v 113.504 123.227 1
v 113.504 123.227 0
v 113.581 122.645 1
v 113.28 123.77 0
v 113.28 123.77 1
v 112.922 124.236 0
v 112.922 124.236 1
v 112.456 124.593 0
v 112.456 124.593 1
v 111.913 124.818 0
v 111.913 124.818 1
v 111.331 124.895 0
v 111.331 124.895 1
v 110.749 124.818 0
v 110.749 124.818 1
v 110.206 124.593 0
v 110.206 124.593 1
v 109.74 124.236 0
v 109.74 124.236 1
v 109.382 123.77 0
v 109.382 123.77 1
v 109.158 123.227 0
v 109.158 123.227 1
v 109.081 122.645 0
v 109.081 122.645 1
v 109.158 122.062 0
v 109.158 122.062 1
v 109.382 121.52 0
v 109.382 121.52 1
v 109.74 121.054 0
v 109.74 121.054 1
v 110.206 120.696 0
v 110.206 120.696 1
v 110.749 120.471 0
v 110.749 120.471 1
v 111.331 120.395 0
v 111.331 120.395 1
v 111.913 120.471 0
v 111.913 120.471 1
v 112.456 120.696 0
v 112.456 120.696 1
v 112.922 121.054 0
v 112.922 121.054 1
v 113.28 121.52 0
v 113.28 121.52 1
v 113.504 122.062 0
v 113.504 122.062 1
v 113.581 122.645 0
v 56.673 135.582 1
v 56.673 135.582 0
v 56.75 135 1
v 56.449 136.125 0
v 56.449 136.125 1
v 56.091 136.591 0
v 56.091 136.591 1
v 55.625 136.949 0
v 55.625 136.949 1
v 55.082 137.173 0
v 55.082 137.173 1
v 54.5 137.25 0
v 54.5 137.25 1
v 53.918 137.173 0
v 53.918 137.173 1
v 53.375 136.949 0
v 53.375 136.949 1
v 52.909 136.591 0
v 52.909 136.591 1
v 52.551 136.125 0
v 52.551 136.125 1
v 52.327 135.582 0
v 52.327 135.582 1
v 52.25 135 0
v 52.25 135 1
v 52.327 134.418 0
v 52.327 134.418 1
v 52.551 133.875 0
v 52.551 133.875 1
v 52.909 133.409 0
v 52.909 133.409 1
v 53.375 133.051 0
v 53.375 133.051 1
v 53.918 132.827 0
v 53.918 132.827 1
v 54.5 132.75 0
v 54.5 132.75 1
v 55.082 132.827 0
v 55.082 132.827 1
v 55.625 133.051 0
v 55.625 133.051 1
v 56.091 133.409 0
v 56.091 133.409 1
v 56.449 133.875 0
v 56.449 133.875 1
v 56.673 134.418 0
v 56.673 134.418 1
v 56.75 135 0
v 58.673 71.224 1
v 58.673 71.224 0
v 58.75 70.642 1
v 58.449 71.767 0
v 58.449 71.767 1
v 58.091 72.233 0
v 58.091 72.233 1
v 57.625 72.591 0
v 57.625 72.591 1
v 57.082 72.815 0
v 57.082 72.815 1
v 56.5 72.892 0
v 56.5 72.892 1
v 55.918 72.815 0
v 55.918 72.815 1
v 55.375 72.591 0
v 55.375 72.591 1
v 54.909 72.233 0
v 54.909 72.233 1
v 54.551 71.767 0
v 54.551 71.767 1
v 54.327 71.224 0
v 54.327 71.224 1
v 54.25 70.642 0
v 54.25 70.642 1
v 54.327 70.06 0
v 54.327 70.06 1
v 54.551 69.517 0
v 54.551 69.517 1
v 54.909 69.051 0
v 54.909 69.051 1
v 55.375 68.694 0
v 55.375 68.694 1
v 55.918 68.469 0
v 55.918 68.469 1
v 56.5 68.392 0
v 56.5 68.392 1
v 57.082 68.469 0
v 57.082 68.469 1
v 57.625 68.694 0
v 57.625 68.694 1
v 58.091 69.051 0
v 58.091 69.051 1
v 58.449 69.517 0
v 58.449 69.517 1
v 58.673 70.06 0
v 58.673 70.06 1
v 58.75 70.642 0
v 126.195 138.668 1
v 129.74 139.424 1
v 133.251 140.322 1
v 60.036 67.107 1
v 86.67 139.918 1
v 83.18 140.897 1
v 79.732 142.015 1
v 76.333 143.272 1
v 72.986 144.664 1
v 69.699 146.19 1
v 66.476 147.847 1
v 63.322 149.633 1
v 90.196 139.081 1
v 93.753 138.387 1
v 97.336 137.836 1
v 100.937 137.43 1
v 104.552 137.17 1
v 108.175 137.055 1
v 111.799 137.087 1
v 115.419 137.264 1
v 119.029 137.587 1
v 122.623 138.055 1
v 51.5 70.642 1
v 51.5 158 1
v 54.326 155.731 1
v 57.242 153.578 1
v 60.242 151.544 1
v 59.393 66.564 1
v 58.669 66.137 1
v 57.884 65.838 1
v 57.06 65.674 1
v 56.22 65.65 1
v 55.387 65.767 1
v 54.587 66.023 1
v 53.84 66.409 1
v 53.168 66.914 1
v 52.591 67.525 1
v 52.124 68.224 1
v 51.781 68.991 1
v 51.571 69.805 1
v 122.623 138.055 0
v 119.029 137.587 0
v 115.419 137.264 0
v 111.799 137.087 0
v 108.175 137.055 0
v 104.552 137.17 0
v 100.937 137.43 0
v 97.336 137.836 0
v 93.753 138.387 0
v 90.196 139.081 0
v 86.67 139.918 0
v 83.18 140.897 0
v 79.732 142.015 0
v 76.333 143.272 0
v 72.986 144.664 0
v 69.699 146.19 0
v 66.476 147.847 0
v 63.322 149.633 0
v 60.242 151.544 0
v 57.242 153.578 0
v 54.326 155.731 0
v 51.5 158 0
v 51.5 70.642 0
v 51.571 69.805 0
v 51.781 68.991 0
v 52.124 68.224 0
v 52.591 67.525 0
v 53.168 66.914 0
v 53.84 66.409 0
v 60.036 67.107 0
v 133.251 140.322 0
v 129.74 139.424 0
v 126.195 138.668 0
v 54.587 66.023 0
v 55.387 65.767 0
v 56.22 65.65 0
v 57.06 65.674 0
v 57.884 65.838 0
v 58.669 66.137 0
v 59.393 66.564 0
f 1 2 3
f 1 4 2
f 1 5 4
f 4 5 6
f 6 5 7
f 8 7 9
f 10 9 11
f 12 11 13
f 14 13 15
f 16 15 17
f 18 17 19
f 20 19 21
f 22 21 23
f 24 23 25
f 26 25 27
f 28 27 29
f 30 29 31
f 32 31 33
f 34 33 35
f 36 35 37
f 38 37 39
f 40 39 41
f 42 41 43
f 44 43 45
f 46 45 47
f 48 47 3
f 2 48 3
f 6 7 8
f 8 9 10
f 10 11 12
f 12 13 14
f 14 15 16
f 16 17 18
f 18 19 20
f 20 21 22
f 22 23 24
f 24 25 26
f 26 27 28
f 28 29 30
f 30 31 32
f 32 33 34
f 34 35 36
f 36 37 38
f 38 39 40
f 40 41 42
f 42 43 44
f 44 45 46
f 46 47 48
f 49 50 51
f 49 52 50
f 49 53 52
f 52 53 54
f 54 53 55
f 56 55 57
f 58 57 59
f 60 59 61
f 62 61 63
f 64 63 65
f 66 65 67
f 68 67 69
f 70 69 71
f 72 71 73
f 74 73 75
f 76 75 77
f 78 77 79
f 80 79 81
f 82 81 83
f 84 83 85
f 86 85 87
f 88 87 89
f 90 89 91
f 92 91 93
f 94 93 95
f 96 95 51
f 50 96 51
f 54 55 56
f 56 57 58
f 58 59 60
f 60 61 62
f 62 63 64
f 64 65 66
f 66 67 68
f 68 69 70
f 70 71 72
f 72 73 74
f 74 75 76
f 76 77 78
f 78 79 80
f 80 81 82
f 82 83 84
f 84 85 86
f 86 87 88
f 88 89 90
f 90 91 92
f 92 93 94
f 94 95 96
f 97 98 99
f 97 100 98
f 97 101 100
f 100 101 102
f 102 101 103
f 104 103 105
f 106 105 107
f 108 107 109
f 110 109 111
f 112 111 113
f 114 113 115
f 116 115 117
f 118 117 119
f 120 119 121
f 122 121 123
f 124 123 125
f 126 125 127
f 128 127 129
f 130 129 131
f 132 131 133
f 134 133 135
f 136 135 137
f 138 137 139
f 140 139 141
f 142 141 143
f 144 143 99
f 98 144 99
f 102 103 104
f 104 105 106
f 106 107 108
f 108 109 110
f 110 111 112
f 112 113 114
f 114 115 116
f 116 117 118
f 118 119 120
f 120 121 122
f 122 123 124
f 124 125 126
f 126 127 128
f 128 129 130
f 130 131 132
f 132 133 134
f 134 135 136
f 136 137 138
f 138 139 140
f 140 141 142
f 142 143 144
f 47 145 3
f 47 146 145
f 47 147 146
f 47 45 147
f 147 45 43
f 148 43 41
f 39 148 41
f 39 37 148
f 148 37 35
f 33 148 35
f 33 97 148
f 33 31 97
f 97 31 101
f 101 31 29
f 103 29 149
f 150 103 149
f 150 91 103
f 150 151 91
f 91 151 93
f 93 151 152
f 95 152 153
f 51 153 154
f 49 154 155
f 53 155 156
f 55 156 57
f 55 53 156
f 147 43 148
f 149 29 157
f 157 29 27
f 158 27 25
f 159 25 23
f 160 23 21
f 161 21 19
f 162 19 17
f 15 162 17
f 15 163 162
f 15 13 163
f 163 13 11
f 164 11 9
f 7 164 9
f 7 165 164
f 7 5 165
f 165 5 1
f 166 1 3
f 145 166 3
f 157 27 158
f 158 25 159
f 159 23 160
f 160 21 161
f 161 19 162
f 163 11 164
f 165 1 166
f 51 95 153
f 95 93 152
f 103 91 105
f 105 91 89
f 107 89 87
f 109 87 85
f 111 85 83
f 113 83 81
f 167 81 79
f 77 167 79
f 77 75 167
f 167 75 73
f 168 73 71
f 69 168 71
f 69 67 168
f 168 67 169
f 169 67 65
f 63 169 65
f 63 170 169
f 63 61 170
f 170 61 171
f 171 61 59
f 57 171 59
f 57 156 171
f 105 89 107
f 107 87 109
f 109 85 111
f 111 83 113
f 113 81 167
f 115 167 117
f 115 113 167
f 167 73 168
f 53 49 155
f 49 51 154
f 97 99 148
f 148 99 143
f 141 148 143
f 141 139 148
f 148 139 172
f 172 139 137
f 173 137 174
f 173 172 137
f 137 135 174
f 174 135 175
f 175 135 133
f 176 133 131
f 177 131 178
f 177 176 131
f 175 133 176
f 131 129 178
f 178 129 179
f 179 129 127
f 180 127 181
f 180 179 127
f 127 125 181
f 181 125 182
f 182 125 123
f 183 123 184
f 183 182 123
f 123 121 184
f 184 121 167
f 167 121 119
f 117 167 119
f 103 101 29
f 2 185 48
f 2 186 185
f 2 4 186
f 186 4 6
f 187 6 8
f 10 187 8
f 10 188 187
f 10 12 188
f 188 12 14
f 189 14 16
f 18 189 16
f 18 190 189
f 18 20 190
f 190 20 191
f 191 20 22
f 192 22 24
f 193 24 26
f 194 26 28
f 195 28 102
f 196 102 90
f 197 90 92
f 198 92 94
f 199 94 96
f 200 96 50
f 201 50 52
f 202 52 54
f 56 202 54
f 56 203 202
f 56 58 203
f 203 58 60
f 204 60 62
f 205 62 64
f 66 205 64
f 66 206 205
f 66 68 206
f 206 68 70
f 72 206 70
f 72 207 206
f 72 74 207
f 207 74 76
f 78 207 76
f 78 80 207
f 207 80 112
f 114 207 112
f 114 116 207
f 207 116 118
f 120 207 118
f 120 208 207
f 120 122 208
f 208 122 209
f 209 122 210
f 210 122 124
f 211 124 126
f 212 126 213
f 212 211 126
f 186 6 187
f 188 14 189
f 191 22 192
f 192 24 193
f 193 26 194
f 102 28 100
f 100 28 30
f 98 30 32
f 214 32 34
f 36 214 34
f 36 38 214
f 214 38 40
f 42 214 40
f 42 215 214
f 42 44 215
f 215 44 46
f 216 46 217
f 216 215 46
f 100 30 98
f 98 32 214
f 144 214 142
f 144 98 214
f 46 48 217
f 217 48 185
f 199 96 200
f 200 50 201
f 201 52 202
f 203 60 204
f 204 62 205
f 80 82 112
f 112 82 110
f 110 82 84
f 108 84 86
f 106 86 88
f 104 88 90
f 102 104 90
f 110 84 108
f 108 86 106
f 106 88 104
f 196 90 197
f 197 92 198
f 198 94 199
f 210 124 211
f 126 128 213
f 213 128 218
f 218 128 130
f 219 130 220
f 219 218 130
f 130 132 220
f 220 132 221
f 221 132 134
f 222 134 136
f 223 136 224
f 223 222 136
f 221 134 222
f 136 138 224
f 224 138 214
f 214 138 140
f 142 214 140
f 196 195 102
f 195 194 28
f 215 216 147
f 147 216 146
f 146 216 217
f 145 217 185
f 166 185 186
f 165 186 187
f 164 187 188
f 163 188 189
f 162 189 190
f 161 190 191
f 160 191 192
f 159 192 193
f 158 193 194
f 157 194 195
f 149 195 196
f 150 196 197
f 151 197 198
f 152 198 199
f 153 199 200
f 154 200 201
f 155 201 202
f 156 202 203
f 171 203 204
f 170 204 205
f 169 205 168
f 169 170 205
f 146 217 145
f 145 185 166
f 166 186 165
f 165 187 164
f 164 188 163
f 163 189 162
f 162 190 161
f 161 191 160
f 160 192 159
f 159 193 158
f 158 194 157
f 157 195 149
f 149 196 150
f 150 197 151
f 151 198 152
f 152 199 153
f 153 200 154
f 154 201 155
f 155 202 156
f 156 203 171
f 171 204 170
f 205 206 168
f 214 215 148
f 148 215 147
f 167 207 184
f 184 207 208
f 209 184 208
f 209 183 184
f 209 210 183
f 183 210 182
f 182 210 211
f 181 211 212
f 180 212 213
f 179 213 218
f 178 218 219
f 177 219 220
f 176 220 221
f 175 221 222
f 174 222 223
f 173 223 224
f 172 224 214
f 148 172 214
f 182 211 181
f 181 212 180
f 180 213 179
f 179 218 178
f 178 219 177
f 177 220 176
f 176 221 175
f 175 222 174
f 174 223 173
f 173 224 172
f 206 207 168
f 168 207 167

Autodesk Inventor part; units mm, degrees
ref_plane "YZ Plane" through (0, 0, 0) normal (1, 0, 0) x (0, 1, 0)
ref_plane "XZ Plane" through (0, 0, 0) normal (0, 1, 0) x (-1, 0, 0)
sketch "Sketch1" plane through (0, 0, 0) normal (0, 0, 1) x (1, 0, 0)
  line L0 (-41.5, 58) -> (41.5, 58)
  line L1 (41.5, 58) -> (41.5, 158)
  line L2 (41.5, 158) -> (-41.5, 158)
  line L3 (-41.5, 158) -> (-41.5, 58)
  line L4 (58, 41.5) -> (158, 41.5)
  line L5 (158, 41.5) -> (158, -41.5)
  line L6 (158, -41.5) -> (58, -41.5)
  line L7 (58, -41.5) -> (58, 41.5)
  line L8 (-131.1952, 0) -> (204.4844, 0) construction
  line L9 (-48, 48) -> (48, 48)
  line L10 (48, 48) -> (48, -48)
  line L11 (48, -48) -> (-48, -48)
  line L12 (-48, -48) -> (-48, 48)
  line L13 (0, 180.9439) -> (0, -136.3054) construction
  point P0 (0, 0)
  point P1 (-48, 0)
  point P2 (0, 48)
  point P3 (0, 58)
  point P4 (58, 0)
  dimension "d0" = 83
  dimension "d1" = 100
  dimension "d2" = 100
  dimension "d3" = 83
  dimension "d5" = 96
  dimension "d6" = 96
  dimension "d7" = 10
  dimension "d8" = 10
sketch "Sketch2" plane through (0, 0, 0) normal (0, 0, 1) x (1, 0, 0)
  line L0 (41.5, 158) -> (-41.5, 158) projected
  line L1 (41.5, 58) -> (41.5, 158) projected
  line L2 (-48, 48) -> (48, 48) projected
  line L3 (48, 48) -> (48, -48) projected
  line L4 (58, -41.5) -> (58, 41.5) projected
  line L5 (58, 41.5) -> (158, 41.5) projected
  line L6 (-41.5, 58) -> (41.5, 58) projected
  line L7 (158, 41.5) -> (158, -41.5) projected
  line L8 (48, 48) -> (136.7868, 136.7868) construction
  line L9 (35.5, 78) -> (57.5, 78)
  line L10 (57.5, 78) -> (57.5, 138)
  line L11 (57.5, 138) -> (35.5, 138)
  line L12 (35.5, 138) -> (35.5, 78)
  line L13 (41.5, 108) -> (-41.5, 108) construction
  line L14 (108, 41.5) -> (108, -41.5) construction
  line L15 (41.5, 158) -> (220.1006, 158) construction
  line L16 (158, 41.5) -> (158, 206.0131) construction
  line L17 (115.5736, 158) -> (158, 115.5736) construction
  line L18 (41.5, 138) -> (41.5, 78) construction
  line L19 (51.5, 138) -> (51.5, 78) construction
  line L20 (46.5, 138) -> (46.5, 78) construction
  line L21 (51.5, 158) -> (51.5, 70.6421)
  line L22 (60.0355, 67.1066) -> (133.2513, 140.3223)
  arc A0 (51.5, 158) -> (133.2513, 140.3223) centre (109.2071, 226.9991) ccw
  line L23 (68.9045, 84.4609) -> (84.4609, 68.9045)
  line L24 (84.4609, 68.9045) -> (126.8873, 111.331)
  line L25 (126.8873, 111.331) -> (111.331, 126.8873)
  line L26 (111.331, 126.8873) -> (68.9045, 84.4609)
  line L27 (80.2183, 73.1472) -> (122.6447, 115.5736) construction
  line L28 (105.6741, 90.1177) -> (90.1177, 105.6741) construction
  line L29 (73.1472, 80.2183) -> (115.5736, 122.6447) construction
  line L30 (76.6827, 76.6827) -> (119.1091, 119.1091) construction
  circle A1 centre (73.1472, 84.4609) radius 2.25
  circle A2 centre (111.331, 122.6447) radius 2.25
  circle A3 centre (84.4609, 73.1472) radius 2.25
  circle A4 centre (122.6447, 111.331) radius 2.25
  circle A5 centre (38.5, 135) radius 2.25
  circle A6 centre (38.5, 81) radius 2.25
  circle A7 centre (54.5, 135) radius 2.25
  circle A8 centre (54.5, 81) radius 2.25
  arc A9 (51.5, 70.6421) -> (60.0355, 67.1066) centre (56.5, 70.6421) ccw
  circle A10 centre (56.5, 70.6421) radius 2.25
  point P0 (0, 0)
  point P1 (158, 158)
  dimension "d23" = 30
  dimension "d25" = 45
  dimension "d30" = 10
  dimension "d37" = 10
  dimension "d38" = 60
  dimension "d39" = 4.5
  dimension "d40" = 3
  dimension "d42" = 4.5
  dimension "d43" = 3
  dimension "d46" = 60
  dimension "d47" = 30
  dimension "d48" = 4.5
  dimension "d49" = 3
  dimension "d50" = 3
  dimension "d51" = 4.5
  dimension "d52" = 3
  dimension "d53" = 3
  dimension "d54" = 5
  dimension "d55" = 25
  dimension "d57" = 3
  dimension "d58" = 3
  dimension "d59" = 3
  dimension "d60" = 3
  dimension "d77" = 4.5
ref_plane "Work Plane1" through (48, 48, 0) normal (0.7071, -0.7071, 0) x (0.7071, 0.7071, 0)
extrude "Extrusion7" add sketch "Sketch2" along normal blind 1 contours L21 L11 L10 L9 | L9 L10 L11 L21 A0 L22 L25 L26 L23 A9 | L23 L26 L25 L22 | A1 | A8
properties part number "SolarFolds_Sketch"
